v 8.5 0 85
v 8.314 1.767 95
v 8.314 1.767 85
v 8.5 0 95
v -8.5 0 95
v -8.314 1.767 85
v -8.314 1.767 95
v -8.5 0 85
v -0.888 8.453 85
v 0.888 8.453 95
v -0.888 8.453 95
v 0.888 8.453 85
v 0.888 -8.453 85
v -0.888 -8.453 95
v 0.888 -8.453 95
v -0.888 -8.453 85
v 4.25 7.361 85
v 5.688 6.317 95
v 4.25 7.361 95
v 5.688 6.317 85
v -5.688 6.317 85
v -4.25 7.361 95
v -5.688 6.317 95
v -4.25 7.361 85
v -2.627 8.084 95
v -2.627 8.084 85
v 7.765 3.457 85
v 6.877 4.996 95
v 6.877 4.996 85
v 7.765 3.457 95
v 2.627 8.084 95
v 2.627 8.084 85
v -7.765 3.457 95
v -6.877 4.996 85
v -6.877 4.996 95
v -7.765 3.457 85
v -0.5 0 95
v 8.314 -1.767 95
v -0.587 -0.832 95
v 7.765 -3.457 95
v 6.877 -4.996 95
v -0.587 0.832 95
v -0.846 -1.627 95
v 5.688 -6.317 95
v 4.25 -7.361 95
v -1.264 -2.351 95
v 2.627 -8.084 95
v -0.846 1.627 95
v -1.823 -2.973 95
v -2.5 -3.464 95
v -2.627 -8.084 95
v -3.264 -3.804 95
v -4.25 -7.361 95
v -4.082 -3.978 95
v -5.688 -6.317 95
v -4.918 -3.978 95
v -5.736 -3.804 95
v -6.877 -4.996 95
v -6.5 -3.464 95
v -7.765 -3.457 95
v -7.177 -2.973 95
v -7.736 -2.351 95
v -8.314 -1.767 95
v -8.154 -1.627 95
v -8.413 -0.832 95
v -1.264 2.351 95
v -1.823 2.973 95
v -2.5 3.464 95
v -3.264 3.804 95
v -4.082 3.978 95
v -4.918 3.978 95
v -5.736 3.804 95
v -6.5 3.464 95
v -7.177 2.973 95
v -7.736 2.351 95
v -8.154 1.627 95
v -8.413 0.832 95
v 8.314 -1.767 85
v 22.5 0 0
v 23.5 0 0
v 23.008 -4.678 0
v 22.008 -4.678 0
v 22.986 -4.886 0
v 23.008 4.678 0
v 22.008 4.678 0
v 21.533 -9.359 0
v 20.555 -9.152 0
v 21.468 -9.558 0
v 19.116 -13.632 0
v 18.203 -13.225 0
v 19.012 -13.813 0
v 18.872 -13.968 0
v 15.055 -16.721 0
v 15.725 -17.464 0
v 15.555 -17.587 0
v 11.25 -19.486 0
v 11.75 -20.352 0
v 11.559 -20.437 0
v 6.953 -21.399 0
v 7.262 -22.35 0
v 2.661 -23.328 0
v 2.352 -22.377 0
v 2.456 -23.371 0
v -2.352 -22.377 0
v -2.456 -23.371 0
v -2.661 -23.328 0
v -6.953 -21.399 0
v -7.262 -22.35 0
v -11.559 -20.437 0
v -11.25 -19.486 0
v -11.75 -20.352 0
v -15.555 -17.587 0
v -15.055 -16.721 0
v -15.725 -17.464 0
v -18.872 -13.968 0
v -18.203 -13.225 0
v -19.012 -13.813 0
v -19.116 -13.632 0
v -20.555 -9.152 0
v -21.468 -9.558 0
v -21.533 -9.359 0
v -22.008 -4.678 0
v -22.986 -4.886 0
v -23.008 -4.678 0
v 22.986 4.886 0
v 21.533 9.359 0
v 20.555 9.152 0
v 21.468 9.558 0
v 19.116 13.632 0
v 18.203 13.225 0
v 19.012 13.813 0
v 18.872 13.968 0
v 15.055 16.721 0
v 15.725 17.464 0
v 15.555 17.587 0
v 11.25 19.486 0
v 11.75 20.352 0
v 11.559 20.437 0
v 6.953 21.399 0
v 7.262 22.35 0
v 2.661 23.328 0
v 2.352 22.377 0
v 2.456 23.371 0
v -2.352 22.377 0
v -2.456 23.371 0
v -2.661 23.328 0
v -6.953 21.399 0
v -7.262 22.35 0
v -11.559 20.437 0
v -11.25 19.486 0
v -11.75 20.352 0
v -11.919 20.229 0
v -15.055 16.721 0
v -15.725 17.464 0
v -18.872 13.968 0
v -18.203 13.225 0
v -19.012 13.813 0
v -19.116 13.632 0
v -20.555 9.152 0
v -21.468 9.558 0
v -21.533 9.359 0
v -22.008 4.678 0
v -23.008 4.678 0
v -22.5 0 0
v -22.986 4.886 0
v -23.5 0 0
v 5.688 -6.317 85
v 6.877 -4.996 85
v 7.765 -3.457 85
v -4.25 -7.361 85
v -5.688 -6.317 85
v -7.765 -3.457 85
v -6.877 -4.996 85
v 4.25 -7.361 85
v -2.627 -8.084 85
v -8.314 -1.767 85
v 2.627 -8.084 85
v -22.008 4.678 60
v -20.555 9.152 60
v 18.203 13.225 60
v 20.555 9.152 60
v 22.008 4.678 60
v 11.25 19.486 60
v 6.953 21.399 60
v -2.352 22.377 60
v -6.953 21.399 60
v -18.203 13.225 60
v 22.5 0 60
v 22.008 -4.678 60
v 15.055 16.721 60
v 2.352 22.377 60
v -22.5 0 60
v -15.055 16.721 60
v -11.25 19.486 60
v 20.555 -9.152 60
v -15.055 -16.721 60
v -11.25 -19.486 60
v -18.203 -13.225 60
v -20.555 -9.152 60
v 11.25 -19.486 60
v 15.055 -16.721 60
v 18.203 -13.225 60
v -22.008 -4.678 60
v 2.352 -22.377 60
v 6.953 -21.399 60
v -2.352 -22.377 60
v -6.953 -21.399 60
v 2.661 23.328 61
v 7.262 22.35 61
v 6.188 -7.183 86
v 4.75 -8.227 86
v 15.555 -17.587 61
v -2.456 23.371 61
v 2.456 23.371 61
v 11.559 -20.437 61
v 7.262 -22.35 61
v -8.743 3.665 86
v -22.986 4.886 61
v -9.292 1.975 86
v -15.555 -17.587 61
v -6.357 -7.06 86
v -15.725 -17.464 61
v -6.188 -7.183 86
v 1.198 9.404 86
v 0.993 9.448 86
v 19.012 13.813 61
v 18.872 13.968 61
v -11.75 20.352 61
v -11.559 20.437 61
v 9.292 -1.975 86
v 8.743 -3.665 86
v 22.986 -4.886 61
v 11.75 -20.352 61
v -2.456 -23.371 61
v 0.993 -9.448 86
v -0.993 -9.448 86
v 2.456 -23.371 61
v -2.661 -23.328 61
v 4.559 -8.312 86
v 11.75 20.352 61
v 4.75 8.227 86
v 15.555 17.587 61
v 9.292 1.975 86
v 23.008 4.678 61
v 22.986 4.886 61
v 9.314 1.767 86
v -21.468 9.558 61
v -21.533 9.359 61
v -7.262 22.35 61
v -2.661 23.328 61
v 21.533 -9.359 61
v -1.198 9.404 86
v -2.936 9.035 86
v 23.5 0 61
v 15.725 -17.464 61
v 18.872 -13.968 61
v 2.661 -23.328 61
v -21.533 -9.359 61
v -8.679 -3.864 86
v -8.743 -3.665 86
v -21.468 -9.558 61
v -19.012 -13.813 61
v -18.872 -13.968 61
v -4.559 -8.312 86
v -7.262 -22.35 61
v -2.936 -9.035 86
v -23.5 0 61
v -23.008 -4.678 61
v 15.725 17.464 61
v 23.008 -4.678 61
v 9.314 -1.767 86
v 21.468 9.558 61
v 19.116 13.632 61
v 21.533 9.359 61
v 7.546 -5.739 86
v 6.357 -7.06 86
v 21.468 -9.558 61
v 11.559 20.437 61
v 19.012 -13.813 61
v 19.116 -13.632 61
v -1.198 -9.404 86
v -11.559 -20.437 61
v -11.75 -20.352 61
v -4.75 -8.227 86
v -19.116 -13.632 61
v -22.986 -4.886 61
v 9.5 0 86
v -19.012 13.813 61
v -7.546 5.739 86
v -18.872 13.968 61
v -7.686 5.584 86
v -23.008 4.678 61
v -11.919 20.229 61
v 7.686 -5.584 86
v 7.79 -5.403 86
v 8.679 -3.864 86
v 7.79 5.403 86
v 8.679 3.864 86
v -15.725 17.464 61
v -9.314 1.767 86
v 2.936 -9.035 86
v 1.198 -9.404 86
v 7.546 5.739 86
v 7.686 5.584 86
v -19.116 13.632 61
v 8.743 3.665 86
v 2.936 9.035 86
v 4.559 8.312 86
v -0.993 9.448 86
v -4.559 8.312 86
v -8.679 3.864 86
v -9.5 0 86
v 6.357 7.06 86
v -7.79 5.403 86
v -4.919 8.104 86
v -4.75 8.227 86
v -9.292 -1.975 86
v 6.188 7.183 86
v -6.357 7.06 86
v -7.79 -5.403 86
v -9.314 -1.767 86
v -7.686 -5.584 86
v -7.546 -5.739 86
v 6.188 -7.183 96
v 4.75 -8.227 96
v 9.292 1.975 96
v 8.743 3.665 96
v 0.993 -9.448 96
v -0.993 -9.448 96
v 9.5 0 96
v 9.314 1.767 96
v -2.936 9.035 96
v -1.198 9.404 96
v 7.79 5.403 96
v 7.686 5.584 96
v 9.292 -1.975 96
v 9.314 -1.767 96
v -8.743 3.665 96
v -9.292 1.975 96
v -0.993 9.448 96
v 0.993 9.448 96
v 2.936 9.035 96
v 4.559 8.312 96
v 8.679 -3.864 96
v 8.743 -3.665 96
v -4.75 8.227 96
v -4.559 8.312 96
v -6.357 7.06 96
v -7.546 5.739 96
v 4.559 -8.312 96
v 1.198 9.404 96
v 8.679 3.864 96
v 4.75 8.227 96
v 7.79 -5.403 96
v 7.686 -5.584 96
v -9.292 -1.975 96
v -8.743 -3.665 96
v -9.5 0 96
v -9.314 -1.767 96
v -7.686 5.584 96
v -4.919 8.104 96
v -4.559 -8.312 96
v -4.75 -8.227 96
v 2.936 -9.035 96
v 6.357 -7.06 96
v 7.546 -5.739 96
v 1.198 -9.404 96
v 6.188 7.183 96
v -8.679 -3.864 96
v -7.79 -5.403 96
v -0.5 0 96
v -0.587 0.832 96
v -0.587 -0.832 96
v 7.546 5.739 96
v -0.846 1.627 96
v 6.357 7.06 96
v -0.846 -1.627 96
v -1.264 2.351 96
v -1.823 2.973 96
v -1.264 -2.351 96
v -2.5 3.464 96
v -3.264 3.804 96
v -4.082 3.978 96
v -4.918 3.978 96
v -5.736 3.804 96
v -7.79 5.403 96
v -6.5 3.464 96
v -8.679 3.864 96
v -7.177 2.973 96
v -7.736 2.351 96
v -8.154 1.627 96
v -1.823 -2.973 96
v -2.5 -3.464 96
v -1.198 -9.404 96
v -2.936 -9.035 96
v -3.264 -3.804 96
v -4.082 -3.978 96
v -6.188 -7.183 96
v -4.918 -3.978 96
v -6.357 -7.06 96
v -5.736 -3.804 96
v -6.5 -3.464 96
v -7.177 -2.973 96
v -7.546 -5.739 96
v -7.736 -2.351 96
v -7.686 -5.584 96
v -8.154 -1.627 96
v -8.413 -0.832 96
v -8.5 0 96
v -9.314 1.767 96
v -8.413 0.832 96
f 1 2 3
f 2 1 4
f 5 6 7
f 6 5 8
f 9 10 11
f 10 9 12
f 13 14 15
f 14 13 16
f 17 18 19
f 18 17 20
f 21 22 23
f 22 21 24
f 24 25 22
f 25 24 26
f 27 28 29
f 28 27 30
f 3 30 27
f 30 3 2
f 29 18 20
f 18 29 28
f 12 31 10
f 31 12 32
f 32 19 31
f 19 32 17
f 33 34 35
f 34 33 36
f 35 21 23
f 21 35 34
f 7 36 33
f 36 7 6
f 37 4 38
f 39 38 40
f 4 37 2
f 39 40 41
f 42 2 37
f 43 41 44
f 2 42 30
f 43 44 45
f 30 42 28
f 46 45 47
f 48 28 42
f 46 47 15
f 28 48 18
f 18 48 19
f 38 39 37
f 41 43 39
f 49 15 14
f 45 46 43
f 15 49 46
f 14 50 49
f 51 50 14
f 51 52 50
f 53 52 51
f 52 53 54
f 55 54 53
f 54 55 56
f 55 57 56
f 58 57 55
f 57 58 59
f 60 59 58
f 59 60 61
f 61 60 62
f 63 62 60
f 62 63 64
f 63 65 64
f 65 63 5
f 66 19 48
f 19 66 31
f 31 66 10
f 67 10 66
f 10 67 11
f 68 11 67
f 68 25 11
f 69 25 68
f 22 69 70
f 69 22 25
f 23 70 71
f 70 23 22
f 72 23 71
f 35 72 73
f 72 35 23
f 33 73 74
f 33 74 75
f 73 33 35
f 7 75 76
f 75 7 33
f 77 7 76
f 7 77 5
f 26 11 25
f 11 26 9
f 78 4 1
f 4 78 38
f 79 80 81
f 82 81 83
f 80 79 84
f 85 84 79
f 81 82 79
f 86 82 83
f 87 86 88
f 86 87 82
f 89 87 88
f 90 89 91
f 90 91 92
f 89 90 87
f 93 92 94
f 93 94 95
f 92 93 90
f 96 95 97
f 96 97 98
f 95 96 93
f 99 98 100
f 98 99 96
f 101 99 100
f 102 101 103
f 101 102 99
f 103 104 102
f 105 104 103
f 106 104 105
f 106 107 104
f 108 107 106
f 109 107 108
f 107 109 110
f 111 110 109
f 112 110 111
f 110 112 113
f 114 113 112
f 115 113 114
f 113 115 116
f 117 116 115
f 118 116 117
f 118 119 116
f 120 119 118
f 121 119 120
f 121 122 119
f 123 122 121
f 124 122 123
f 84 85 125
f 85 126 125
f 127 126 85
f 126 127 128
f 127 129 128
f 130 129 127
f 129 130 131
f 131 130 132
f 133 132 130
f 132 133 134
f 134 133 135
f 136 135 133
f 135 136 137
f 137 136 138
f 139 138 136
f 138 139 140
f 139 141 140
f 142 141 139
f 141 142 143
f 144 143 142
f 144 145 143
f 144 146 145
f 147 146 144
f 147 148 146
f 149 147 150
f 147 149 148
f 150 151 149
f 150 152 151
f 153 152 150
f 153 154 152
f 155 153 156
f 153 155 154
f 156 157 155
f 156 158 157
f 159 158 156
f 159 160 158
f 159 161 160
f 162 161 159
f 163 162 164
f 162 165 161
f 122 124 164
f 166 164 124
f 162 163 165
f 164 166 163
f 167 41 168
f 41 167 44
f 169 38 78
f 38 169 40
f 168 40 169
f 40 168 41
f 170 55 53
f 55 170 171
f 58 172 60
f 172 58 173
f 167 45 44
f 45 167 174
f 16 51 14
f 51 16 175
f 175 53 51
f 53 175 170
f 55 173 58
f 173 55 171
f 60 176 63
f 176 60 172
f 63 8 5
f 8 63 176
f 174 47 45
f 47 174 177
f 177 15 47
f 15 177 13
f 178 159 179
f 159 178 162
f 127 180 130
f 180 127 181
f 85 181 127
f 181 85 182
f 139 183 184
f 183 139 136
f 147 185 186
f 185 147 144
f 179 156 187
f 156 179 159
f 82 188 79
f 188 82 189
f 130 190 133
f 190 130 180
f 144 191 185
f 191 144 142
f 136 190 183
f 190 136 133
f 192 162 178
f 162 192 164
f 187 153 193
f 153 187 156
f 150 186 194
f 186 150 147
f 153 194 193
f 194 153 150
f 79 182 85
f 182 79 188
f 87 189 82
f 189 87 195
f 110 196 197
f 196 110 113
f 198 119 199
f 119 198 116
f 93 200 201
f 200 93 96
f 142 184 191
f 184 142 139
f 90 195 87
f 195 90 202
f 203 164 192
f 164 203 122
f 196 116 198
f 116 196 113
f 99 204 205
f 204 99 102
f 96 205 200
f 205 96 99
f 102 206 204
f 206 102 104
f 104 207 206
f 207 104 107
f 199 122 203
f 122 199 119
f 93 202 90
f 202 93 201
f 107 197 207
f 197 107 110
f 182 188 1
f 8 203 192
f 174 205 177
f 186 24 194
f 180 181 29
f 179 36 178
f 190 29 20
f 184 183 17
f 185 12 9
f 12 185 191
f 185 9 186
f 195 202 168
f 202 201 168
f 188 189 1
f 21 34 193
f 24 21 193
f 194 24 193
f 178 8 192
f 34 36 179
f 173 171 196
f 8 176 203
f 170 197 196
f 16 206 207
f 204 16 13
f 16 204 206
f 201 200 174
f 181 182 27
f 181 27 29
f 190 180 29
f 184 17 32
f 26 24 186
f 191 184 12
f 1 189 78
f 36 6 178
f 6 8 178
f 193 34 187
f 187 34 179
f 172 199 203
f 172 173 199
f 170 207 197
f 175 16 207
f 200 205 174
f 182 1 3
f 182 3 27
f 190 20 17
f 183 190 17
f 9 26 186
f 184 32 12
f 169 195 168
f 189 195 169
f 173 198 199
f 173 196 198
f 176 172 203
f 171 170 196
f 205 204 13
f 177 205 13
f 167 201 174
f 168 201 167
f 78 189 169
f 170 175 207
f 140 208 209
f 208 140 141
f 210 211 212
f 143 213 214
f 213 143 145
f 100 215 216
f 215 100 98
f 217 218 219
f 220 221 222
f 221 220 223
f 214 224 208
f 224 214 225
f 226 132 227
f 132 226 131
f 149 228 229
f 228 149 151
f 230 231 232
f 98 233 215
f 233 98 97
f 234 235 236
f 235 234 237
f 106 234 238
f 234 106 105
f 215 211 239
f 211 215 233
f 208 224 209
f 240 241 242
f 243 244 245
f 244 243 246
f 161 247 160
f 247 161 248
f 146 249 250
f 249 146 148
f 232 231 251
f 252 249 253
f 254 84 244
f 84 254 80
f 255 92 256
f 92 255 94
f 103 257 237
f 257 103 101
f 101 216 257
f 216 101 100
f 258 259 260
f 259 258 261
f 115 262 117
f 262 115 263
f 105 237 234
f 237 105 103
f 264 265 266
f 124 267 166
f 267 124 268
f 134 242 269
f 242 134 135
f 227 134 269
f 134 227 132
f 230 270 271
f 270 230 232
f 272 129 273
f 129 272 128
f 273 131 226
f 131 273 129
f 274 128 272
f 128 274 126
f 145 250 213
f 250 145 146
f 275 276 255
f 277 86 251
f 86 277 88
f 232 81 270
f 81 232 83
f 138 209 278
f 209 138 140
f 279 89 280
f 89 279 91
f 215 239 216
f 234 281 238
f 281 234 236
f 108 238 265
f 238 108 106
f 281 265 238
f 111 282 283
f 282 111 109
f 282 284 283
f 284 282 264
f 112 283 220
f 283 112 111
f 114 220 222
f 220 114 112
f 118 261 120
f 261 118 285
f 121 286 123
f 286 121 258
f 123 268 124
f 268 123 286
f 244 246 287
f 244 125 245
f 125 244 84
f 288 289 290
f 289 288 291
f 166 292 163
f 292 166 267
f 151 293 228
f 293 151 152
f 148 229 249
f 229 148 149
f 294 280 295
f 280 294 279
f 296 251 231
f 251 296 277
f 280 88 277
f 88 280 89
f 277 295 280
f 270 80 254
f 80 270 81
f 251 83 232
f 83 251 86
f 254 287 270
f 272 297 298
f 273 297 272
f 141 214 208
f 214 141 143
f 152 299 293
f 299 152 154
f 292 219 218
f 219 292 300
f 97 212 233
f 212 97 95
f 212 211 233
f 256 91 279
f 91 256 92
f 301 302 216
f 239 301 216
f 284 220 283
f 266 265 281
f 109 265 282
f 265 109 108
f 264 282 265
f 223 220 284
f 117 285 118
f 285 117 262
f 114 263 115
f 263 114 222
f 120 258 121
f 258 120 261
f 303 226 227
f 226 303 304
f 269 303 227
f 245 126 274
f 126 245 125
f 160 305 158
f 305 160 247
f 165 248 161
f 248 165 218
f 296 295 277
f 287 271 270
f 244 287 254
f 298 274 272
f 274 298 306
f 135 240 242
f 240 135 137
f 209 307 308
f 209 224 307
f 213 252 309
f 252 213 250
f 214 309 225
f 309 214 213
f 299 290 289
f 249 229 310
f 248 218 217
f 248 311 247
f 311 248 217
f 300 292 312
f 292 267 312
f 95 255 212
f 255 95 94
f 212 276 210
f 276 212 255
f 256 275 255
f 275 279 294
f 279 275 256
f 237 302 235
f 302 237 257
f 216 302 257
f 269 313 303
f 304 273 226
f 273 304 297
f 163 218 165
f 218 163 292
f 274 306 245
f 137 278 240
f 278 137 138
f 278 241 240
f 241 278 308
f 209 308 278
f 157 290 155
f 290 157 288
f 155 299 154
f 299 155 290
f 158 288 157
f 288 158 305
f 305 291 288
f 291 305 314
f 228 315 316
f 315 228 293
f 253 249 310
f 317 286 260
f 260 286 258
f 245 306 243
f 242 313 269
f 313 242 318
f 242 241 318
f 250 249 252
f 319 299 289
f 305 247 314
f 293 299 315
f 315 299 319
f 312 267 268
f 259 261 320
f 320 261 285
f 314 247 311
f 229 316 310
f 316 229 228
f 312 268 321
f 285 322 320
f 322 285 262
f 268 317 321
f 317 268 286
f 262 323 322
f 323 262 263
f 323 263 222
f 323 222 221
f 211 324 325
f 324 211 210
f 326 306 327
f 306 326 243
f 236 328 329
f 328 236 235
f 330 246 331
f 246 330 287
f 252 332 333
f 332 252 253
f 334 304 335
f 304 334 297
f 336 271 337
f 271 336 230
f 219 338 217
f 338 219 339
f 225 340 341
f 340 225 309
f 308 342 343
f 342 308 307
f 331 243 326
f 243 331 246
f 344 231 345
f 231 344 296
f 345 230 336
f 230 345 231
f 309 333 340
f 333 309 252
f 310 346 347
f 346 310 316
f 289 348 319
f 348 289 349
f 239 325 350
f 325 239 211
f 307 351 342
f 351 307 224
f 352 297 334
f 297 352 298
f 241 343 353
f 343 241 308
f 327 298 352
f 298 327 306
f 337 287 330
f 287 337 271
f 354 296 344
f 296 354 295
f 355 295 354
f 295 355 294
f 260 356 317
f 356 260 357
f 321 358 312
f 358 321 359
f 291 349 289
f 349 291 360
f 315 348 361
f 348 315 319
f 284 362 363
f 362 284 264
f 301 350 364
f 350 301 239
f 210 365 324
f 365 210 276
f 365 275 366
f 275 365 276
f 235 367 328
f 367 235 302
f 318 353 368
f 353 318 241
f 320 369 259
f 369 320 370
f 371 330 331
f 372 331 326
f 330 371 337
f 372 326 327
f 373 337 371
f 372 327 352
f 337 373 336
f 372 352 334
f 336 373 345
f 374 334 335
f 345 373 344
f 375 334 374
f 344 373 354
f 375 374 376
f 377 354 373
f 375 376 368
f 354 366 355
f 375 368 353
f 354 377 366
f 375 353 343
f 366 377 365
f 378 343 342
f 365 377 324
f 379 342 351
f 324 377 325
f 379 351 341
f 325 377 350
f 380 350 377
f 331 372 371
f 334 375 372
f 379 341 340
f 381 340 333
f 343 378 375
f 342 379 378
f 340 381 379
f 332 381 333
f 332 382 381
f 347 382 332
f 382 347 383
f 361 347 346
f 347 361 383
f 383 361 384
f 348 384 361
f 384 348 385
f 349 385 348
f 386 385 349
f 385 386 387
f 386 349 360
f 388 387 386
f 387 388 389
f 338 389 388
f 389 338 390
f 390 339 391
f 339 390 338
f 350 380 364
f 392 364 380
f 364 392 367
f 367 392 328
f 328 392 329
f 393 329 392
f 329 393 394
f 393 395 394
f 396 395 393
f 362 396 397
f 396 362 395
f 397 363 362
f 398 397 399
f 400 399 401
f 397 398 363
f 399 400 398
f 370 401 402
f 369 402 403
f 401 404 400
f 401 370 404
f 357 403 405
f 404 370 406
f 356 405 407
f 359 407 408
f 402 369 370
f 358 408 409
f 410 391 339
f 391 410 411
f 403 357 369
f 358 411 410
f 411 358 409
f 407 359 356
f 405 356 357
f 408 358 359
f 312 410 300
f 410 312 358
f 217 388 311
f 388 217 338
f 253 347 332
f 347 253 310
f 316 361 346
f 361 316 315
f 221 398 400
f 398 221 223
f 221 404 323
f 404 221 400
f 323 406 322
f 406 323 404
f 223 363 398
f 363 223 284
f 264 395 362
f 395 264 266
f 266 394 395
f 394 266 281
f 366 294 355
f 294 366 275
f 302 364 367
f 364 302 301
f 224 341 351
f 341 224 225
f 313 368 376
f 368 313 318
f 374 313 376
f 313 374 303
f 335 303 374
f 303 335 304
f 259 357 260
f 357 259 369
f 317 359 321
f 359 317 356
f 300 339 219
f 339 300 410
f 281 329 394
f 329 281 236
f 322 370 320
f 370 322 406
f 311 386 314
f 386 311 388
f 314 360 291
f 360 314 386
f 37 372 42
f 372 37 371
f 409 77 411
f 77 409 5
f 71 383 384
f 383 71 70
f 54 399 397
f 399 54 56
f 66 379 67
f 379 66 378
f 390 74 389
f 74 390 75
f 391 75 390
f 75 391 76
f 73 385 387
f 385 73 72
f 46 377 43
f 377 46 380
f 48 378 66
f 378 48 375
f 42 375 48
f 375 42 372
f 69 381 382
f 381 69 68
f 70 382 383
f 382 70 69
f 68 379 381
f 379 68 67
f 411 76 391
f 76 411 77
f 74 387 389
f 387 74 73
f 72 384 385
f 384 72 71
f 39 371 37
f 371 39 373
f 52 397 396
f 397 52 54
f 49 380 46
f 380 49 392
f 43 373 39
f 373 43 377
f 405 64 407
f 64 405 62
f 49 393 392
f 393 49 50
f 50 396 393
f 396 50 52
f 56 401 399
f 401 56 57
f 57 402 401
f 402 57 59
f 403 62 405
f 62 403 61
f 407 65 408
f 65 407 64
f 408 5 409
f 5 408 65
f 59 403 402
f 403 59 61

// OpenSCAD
$fn = 30;

main_radius = 22.5;
neck_radius = 8.5;
main_height = 75;
neck_height = 10;


module airbag(main_radius = main_radius, neck_radius = neck_radius, main_height = main_height, neck_height = neck_height,
$fn = $fn) {
    neck_join = main_height + 25;
    cylinder(r= neck_radius, h=neck_join + neck_height, $fn = $fn);
    cylinder(r= main_radius, h=main_height, $fn = $fn);
    translate([0, 0, main_height])
        cylinder(r1 = main_radius, r2 = neck_radius, h = neck_join - main_height, $fn = $fn);
}

module airbag_mould(main_height = main_height) {
    difference() {
        minkowski() {
            airbag(main_height = main_height);
            cylinder(r = 1, h = 1);
        };
        union() {
            translate([-4.5, 0, 0]) cylinder(r = 4, h = main_height * 2);
            airbag(main_height = main_height);
        }
    };
}

module mould_lid(main_radius = main_radius, neck_radius = neck_radius) {
    minkowski() {
        cylinder(r= main_radius, h = 1, $fn = $fn);
        cylinder(r = 1, h = 1, $fn = $fn);
    }
    cylinder(r = main_radius, h = 4, $fn = $fn);
}

airbag_mould(main_height = 60);
// mould_lid();
